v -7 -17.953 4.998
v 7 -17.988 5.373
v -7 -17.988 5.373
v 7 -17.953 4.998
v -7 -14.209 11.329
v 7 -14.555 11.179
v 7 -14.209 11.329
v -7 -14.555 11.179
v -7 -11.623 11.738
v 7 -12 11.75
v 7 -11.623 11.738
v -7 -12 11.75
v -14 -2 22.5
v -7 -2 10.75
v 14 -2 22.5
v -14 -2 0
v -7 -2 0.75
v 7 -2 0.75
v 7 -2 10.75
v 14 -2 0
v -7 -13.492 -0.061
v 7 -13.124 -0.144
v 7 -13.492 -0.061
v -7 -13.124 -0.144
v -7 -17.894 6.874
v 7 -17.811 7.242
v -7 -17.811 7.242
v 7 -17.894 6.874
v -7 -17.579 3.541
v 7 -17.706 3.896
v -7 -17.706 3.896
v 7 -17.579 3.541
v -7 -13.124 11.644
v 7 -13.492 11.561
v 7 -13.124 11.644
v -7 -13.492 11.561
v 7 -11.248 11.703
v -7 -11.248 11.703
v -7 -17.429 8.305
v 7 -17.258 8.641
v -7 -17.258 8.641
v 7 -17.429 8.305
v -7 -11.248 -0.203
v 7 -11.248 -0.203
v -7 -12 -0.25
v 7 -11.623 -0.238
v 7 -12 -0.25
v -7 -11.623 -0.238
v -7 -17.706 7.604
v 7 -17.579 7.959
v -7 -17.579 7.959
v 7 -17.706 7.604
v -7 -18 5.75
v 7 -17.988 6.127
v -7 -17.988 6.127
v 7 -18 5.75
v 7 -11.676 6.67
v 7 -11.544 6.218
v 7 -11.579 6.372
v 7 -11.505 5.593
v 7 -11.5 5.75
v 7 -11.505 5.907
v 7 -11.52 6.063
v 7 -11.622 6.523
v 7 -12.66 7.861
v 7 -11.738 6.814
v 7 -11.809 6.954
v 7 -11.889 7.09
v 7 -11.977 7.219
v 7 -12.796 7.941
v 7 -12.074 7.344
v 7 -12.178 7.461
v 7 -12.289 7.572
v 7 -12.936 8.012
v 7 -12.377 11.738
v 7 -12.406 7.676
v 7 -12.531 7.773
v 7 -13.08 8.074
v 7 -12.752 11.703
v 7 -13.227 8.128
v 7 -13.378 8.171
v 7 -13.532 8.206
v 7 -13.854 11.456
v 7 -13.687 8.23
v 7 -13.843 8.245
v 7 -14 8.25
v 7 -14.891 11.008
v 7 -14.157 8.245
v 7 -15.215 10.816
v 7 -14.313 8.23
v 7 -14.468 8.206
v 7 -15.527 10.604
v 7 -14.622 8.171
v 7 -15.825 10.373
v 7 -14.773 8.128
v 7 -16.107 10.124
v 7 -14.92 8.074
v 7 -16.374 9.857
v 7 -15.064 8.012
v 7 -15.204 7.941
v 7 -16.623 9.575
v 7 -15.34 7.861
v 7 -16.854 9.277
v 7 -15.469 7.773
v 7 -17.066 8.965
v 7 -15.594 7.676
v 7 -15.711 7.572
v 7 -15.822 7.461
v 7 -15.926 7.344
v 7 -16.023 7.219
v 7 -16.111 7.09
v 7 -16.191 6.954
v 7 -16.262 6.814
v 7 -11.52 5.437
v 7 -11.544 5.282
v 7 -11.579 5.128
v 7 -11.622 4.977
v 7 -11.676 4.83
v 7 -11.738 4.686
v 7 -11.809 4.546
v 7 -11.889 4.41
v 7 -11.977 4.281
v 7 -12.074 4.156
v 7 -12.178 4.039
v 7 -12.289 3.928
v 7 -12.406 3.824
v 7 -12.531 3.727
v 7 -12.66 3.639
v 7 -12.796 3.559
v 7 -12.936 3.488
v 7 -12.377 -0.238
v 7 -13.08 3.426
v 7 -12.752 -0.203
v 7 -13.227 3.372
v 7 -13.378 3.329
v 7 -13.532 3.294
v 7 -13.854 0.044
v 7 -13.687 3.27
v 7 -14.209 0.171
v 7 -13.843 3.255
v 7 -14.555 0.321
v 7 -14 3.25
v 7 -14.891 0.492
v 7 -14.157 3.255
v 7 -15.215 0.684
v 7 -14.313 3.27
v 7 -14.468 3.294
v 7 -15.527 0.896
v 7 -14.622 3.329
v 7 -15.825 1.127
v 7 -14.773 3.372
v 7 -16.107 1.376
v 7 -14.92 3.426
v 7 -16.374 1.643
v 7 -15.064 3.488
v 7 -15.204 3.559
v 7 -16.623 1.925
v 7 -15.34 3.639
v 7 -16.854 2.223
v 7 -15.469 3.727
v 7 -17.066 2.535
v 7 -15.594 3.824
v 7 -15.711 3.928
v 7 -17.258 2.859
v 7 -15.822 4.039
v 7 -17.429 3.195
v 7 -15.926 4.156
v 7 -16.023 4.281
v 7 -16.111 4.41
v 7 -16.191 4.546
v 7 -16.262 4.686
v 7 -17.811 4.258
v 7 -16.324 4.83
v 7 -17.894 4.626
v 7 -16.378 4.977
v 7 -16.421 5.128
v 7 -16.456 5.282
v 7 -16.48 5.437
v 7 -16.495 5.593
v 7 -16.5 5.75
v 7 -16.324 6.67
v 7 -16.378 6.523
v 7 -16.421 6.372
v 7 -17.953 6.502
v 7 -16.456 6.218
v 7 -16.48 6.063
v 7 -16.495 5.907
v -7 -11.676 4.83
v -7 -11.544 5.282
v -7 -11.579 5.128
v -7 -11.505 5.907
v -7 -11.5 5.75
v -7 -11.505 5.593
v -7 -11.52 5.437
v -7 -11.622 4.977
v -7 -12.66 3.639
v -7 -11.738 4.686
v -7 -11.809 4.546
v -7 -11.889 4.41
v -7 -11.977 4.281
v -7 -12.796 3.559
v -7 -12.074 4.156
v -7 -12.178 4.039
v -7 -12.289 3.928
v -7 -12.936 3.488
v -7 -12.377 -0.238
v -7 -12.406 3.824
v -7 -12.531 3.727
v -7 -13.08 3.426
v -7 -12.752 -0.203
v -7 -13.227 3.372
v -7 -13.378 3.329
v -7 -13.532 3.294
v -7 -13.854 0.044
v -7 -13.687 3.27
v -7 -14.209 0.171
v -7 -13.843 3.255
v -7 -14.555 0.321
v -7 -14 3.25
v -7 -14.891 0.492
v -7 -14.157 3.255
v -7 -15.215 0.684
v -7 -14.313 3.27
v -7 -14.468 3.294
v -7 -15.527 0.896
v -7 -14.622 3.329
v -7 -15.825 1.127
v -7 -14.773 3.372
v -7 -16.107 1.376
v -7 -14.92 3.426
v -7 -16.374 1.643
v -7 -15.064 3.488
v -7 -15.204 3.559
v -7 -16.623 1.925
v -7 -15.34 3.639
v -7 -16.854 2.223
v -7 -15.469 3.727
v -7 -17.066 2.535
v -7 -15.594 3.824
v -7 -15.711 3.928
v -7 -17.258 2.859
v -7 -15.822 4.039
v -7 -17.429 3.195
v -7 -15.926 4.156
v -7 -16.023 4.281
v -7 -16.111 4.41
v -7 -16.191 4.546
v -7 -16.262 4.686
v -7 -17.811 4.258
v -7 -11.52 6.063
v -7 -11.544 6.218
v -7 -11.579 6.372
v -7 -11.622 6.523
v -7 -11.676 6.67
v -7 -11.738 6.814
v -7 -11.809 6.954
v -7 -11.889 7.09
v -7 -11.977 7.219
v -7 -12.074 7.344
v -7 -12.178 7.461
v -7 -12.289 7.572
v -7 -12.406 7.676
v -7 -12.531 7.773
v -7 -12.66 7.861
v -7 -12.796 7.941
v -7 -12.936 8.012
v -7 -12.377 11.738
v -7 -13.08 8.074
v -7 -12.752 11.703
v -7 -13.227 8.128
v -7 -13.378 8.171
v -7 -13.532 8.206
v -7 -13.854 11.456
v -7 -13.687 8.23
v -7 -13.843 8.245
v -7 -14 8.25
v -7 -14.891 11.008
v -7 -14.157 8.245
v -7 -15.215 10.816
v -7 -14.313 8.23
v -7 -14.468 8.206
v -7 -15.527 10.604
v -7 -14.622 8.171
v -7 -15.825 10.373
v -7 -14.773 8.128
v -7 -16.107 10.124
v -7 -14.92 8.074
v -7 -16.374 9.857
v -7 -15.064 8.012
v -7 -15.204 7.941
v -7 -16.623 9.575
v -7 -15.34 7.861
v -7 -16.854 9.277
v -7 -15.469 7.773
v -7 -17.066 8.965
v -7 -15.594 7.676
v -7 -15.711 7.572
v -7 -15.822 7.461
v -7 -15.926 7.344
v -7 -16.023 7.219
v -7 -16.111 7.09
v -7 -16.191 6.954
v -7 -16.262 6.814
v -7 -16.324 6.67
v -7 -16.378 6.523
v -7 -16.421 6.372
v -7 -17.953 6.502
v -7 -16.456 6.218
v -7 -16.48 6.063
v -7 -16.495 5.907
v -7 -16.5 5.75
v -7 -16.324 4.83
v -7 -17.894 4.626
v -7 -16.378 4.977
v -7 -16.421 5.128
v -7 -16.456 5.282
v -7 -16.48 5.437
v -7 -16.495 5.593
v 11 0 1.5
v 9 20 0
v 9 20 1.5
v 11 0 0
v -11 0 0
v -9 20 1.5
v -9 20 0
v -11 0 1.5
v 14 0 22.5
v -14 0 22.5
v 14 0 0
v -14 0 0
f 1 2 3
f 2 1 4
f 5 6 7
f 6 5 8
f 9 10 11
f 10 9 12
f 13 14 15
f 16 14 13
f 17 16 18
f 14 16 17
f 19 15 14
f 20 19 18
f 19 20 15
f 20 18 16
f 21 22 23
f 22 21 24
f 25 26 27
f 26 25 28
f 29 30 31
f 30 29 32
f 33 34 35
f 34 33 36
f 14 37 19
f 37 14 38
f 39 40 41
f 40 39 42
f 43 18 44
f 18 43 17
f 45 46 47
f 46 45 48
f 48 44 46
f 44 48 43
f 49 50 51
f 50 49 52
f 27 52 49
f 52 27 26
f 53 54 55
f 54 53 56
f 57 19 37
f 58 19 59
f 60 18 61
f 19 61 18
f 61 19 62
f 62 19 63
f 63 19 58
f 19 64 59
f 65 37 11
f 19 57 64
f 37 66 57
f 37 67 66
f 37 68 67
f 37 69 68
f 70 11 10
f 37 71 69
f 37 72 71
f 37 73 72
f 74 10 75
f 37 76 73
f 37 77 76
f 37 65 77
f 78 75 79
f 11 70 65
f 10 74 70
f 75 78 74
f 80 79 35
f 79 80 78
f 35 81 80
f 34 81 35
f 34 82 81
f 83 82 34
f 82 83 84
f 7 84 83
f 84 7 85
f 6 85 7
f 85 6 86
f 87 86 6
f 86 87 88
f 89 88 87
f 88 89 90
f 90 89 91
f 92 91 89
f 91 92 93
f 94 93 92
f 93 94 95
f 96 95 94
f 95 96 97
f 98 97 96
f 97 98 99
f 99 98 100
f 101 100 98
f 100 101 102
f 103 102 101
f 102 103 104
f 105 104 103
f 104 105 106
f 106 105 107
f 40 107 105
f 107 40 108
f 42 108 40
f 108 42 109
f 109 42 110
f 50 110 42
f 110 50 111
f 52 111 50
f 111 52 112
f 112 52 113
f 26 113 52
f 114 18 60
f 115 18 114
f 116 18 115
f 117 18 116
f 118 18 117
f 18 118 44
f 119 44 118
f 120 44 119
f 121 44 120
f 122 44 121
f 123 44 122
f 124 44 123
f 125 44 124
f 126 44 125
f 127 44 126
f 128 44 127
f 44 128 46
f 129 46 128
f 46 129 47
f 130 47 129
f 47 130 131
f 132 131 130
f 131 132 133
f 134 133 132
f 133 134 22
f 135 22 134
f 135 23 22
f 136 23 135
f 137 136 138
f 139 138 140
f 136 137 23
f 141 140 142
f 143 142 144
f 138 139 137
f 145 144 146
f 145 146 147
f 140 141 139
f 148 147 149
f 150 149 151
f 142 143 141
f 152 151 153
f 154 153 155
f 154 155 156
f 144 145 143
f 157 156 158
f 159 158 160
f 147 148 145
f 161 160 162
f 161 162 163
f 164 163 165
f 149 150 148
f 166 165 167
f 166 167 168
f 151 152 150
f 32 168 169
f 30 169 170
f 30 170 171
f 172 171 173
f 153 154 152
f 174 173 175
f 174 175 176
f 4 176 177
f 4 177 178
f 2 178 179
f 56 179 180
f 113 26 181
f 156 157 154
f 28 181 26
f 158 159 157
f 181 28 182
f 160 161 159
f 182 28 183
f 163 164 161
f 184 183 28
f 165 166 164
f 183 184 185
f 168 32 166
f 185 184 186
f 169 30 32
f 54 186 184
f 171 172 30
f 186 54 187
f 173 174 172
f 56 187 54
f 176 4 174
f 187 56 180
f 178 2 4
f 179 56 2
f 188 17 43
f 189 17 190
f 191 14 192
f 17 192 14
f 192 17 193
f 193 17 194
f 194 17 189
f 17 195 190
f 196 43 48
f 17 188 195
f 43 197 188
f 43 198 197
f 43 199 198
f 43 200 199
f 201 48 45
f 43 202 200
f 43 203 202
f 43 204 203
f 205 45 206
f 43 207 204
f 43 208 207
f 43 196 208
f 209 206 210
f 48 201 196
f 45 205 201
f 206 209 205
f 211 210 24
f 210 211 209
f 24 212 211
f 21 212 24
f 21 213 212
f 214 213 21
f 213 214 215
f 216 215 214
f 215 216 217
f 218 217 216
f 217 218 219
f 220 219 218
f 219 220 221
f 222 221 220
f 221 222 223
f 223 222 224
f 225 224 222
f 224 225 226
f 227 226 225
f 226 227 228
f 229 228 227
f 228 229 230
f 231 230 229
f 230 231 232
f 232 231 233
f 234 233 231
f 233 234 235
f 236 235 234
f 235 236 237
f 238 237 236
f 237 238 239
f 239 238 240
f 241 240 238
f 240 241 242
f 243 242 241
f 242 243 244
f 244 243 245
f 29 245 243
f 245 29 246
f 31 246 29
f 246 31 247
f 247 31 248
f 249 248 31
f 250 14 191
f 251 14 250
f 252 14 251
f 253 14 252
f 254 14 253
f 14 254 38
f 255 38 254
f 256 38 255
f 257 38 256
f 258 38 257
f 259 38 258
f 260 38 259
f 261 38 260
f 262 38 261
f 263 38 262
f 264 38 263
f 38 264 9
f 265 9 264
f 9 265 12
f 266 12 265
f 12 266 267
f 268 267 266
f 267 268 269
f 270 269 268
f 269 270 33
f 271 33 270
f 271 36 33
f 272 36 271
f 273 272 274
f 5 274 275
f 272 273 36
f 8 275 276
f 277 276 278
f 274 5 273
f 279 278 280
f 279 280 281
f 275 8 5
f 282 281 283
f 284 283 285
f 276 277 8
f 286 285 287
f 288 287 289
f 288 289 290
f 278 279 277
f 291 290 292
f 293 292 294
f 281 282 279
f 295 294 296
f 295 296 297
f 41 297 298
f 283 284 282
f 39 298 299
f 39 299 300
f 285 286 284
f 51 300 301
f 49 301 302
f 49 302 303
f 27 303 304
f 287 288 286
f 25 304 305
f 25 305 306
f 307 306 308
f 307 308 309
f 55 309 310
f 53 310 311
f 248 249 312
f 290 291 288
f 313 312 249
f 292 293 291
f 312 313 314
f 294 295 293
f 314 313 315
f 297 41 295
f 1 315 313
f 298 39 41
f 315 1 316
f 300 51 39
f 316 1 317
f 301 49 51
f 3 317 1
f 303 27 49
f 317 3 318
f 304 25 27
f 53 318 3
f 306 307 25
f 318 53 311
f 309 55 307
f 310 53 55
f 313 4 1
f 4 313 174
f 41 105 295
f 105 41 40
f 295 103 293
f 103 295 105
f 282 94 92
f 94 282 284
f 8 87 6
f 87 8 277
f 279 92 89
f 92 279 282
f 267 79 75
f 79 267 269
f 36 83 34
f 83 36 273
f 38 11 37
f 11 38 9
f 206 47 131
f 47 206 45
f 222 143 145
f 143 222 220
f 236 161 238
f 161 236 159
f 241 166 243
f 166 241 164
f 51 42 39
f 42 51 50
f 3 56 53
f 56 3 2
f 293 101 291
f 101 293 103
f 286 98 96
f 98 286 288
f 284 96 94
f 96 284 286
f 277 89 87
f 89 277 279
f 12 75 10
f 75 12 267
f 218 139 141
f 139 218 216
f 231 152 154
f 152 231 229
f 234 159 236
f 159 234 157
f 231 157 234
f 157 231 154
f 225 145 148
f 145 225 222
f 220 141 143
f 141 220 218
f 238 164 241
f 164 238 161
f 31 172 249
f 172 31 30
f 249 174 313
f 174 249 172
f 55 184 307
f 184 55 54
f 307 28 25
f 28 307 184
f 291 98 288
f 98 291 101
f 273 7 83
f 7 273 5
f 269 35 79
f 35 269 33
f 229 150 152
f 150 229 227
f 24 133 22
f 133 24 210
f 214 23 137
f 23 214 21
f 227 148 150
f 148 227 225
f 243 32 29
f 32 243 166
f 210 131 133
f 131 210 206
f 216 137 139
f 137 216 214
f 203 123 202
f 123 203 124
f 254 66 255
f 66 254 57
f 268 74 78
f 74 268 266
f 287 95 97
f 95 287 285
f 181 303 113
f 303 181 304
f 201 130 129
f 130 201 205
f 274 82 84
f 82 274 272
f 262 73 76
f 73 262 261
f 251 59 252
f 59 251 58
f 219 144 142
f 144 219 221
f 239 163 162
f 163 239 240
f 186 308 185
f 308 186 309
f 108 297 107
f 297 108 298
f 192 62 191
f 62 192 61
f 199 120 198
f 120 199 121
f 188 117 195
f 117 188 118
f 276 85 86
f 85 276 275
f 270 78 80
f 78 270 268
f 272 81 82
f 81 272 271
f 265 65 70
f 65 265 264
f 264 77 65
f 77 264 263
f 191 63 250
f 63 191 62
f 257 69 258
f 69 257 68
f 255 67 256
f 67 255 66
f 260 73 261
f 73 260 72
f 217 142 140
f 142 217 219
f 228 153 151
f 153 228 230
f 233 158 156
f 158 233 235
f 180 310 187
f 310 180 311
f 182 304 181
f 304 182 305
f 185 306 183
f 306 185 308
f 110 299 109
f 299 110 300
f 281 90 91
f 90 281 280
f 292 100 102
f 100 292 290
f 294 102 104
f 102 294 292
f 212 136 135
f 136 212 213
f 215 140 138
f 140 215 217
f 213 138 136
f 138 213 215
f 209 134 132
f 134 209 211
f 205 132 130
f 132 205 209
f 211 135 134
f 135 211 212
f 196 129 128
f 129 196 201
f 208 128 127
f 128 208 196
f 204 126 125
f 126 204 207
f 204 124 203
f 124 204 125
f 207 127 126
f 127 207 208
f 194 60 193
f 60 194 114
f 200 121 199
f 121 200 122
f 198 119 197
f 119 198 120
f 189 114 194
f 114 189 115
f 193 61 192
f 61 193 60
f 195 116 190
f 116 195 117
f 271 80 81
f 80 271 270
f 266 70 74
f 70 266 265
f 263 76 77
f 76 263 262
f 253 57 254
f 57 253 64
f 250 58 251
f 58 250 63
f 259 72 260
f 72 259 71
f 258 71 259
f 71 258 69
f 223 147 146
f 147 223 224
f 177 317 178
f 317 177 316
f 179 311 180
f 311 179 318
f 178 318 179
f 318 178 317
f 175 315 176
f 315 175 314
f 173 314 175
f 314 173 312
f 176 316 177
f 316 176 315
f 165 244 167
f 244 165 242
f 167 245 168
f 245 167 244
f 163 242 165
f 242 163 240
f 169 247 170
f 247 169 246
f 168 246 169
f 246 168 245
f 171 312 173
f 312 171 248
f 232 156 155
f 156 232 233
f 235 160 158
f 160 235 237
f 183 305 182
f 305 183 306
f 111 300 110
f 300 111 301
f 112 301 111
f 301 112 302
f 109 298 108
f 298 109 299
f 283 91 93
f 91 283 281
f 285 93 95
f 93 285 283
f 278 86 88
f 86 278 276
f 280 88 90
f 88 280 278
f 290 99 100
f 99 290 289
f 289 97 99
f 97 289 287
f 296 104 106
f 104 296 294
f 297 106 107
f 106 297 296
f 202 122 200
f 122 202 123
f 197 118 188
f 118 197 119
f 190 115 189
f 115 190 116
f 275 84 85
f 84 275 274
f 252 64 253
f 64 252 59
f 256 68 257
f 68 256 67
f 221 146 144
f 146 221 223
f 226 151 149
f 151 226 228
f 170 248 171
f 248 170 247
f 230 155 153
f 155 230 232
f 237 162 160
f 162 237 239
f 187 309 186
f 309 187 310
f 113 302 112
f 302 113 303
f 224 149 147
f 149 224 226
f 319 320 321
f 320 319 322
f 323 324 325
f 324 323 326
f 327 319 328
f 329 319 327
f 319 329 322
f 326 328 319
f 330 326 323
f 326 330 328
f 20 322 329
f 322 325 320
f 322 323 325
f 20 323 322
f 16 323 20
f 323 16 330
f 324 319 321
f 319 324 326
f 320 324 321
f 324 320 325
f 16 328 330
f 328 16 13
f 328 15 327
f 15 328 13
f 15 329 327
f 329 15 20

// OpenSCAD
// Medify - Drawer (Short & Optimized Version)
$fn = 100;

// --- פרמטרים מותאמים אישית ---
hole_w = 22;      // רוחב מעט יותר צר מהחור (23) למניעת חיכוך
hole_h = 18.5;    // גובה מעט נמוך מהחור (19)
depth = 20;       // האורך הקצר שביקשת - רק כדי לתפוס את הכדור בפתח
wall_thick = 1.5; // עובי רצפה (משאיר מרווח ביטחון ל-IR)

union() {
    // 1. רצפת המגירה המקוצרת (צורת טרפז קלה)
    linear_extrude(height = wall_thick)
        polygon(points=[
            [-11, 0], [11, 0],       // רוחב ביציאה
            [9, depth], [-9, depth]  // רוחב בקצה הפנימי (מצטמצם פנימה)
        ]);

    // 2. פקק האטימה (השפה החיצונית) - גדולה ב-3 מ"מ מהחור
    translate([- (hole_w+6)/2, -2, 0])
        cube([hole_w + 6, 2, hole_h + 4]);

    // 3. הידית הקטנה שלך
    translate([0, -8, wall_thick/2 + 5])
    difference() {
        hull() { 
            cube([14, 12, 10], center = true); 
            translate([0, -4, 0]) rotate([0,90,0]) cylinder(h = 14, r = 6, center = true); 
        }
        translate([0, -6, 0]) rotate([0,90,0]) cylinder(h = 16, r = 2.5, center = true);
    }
}
